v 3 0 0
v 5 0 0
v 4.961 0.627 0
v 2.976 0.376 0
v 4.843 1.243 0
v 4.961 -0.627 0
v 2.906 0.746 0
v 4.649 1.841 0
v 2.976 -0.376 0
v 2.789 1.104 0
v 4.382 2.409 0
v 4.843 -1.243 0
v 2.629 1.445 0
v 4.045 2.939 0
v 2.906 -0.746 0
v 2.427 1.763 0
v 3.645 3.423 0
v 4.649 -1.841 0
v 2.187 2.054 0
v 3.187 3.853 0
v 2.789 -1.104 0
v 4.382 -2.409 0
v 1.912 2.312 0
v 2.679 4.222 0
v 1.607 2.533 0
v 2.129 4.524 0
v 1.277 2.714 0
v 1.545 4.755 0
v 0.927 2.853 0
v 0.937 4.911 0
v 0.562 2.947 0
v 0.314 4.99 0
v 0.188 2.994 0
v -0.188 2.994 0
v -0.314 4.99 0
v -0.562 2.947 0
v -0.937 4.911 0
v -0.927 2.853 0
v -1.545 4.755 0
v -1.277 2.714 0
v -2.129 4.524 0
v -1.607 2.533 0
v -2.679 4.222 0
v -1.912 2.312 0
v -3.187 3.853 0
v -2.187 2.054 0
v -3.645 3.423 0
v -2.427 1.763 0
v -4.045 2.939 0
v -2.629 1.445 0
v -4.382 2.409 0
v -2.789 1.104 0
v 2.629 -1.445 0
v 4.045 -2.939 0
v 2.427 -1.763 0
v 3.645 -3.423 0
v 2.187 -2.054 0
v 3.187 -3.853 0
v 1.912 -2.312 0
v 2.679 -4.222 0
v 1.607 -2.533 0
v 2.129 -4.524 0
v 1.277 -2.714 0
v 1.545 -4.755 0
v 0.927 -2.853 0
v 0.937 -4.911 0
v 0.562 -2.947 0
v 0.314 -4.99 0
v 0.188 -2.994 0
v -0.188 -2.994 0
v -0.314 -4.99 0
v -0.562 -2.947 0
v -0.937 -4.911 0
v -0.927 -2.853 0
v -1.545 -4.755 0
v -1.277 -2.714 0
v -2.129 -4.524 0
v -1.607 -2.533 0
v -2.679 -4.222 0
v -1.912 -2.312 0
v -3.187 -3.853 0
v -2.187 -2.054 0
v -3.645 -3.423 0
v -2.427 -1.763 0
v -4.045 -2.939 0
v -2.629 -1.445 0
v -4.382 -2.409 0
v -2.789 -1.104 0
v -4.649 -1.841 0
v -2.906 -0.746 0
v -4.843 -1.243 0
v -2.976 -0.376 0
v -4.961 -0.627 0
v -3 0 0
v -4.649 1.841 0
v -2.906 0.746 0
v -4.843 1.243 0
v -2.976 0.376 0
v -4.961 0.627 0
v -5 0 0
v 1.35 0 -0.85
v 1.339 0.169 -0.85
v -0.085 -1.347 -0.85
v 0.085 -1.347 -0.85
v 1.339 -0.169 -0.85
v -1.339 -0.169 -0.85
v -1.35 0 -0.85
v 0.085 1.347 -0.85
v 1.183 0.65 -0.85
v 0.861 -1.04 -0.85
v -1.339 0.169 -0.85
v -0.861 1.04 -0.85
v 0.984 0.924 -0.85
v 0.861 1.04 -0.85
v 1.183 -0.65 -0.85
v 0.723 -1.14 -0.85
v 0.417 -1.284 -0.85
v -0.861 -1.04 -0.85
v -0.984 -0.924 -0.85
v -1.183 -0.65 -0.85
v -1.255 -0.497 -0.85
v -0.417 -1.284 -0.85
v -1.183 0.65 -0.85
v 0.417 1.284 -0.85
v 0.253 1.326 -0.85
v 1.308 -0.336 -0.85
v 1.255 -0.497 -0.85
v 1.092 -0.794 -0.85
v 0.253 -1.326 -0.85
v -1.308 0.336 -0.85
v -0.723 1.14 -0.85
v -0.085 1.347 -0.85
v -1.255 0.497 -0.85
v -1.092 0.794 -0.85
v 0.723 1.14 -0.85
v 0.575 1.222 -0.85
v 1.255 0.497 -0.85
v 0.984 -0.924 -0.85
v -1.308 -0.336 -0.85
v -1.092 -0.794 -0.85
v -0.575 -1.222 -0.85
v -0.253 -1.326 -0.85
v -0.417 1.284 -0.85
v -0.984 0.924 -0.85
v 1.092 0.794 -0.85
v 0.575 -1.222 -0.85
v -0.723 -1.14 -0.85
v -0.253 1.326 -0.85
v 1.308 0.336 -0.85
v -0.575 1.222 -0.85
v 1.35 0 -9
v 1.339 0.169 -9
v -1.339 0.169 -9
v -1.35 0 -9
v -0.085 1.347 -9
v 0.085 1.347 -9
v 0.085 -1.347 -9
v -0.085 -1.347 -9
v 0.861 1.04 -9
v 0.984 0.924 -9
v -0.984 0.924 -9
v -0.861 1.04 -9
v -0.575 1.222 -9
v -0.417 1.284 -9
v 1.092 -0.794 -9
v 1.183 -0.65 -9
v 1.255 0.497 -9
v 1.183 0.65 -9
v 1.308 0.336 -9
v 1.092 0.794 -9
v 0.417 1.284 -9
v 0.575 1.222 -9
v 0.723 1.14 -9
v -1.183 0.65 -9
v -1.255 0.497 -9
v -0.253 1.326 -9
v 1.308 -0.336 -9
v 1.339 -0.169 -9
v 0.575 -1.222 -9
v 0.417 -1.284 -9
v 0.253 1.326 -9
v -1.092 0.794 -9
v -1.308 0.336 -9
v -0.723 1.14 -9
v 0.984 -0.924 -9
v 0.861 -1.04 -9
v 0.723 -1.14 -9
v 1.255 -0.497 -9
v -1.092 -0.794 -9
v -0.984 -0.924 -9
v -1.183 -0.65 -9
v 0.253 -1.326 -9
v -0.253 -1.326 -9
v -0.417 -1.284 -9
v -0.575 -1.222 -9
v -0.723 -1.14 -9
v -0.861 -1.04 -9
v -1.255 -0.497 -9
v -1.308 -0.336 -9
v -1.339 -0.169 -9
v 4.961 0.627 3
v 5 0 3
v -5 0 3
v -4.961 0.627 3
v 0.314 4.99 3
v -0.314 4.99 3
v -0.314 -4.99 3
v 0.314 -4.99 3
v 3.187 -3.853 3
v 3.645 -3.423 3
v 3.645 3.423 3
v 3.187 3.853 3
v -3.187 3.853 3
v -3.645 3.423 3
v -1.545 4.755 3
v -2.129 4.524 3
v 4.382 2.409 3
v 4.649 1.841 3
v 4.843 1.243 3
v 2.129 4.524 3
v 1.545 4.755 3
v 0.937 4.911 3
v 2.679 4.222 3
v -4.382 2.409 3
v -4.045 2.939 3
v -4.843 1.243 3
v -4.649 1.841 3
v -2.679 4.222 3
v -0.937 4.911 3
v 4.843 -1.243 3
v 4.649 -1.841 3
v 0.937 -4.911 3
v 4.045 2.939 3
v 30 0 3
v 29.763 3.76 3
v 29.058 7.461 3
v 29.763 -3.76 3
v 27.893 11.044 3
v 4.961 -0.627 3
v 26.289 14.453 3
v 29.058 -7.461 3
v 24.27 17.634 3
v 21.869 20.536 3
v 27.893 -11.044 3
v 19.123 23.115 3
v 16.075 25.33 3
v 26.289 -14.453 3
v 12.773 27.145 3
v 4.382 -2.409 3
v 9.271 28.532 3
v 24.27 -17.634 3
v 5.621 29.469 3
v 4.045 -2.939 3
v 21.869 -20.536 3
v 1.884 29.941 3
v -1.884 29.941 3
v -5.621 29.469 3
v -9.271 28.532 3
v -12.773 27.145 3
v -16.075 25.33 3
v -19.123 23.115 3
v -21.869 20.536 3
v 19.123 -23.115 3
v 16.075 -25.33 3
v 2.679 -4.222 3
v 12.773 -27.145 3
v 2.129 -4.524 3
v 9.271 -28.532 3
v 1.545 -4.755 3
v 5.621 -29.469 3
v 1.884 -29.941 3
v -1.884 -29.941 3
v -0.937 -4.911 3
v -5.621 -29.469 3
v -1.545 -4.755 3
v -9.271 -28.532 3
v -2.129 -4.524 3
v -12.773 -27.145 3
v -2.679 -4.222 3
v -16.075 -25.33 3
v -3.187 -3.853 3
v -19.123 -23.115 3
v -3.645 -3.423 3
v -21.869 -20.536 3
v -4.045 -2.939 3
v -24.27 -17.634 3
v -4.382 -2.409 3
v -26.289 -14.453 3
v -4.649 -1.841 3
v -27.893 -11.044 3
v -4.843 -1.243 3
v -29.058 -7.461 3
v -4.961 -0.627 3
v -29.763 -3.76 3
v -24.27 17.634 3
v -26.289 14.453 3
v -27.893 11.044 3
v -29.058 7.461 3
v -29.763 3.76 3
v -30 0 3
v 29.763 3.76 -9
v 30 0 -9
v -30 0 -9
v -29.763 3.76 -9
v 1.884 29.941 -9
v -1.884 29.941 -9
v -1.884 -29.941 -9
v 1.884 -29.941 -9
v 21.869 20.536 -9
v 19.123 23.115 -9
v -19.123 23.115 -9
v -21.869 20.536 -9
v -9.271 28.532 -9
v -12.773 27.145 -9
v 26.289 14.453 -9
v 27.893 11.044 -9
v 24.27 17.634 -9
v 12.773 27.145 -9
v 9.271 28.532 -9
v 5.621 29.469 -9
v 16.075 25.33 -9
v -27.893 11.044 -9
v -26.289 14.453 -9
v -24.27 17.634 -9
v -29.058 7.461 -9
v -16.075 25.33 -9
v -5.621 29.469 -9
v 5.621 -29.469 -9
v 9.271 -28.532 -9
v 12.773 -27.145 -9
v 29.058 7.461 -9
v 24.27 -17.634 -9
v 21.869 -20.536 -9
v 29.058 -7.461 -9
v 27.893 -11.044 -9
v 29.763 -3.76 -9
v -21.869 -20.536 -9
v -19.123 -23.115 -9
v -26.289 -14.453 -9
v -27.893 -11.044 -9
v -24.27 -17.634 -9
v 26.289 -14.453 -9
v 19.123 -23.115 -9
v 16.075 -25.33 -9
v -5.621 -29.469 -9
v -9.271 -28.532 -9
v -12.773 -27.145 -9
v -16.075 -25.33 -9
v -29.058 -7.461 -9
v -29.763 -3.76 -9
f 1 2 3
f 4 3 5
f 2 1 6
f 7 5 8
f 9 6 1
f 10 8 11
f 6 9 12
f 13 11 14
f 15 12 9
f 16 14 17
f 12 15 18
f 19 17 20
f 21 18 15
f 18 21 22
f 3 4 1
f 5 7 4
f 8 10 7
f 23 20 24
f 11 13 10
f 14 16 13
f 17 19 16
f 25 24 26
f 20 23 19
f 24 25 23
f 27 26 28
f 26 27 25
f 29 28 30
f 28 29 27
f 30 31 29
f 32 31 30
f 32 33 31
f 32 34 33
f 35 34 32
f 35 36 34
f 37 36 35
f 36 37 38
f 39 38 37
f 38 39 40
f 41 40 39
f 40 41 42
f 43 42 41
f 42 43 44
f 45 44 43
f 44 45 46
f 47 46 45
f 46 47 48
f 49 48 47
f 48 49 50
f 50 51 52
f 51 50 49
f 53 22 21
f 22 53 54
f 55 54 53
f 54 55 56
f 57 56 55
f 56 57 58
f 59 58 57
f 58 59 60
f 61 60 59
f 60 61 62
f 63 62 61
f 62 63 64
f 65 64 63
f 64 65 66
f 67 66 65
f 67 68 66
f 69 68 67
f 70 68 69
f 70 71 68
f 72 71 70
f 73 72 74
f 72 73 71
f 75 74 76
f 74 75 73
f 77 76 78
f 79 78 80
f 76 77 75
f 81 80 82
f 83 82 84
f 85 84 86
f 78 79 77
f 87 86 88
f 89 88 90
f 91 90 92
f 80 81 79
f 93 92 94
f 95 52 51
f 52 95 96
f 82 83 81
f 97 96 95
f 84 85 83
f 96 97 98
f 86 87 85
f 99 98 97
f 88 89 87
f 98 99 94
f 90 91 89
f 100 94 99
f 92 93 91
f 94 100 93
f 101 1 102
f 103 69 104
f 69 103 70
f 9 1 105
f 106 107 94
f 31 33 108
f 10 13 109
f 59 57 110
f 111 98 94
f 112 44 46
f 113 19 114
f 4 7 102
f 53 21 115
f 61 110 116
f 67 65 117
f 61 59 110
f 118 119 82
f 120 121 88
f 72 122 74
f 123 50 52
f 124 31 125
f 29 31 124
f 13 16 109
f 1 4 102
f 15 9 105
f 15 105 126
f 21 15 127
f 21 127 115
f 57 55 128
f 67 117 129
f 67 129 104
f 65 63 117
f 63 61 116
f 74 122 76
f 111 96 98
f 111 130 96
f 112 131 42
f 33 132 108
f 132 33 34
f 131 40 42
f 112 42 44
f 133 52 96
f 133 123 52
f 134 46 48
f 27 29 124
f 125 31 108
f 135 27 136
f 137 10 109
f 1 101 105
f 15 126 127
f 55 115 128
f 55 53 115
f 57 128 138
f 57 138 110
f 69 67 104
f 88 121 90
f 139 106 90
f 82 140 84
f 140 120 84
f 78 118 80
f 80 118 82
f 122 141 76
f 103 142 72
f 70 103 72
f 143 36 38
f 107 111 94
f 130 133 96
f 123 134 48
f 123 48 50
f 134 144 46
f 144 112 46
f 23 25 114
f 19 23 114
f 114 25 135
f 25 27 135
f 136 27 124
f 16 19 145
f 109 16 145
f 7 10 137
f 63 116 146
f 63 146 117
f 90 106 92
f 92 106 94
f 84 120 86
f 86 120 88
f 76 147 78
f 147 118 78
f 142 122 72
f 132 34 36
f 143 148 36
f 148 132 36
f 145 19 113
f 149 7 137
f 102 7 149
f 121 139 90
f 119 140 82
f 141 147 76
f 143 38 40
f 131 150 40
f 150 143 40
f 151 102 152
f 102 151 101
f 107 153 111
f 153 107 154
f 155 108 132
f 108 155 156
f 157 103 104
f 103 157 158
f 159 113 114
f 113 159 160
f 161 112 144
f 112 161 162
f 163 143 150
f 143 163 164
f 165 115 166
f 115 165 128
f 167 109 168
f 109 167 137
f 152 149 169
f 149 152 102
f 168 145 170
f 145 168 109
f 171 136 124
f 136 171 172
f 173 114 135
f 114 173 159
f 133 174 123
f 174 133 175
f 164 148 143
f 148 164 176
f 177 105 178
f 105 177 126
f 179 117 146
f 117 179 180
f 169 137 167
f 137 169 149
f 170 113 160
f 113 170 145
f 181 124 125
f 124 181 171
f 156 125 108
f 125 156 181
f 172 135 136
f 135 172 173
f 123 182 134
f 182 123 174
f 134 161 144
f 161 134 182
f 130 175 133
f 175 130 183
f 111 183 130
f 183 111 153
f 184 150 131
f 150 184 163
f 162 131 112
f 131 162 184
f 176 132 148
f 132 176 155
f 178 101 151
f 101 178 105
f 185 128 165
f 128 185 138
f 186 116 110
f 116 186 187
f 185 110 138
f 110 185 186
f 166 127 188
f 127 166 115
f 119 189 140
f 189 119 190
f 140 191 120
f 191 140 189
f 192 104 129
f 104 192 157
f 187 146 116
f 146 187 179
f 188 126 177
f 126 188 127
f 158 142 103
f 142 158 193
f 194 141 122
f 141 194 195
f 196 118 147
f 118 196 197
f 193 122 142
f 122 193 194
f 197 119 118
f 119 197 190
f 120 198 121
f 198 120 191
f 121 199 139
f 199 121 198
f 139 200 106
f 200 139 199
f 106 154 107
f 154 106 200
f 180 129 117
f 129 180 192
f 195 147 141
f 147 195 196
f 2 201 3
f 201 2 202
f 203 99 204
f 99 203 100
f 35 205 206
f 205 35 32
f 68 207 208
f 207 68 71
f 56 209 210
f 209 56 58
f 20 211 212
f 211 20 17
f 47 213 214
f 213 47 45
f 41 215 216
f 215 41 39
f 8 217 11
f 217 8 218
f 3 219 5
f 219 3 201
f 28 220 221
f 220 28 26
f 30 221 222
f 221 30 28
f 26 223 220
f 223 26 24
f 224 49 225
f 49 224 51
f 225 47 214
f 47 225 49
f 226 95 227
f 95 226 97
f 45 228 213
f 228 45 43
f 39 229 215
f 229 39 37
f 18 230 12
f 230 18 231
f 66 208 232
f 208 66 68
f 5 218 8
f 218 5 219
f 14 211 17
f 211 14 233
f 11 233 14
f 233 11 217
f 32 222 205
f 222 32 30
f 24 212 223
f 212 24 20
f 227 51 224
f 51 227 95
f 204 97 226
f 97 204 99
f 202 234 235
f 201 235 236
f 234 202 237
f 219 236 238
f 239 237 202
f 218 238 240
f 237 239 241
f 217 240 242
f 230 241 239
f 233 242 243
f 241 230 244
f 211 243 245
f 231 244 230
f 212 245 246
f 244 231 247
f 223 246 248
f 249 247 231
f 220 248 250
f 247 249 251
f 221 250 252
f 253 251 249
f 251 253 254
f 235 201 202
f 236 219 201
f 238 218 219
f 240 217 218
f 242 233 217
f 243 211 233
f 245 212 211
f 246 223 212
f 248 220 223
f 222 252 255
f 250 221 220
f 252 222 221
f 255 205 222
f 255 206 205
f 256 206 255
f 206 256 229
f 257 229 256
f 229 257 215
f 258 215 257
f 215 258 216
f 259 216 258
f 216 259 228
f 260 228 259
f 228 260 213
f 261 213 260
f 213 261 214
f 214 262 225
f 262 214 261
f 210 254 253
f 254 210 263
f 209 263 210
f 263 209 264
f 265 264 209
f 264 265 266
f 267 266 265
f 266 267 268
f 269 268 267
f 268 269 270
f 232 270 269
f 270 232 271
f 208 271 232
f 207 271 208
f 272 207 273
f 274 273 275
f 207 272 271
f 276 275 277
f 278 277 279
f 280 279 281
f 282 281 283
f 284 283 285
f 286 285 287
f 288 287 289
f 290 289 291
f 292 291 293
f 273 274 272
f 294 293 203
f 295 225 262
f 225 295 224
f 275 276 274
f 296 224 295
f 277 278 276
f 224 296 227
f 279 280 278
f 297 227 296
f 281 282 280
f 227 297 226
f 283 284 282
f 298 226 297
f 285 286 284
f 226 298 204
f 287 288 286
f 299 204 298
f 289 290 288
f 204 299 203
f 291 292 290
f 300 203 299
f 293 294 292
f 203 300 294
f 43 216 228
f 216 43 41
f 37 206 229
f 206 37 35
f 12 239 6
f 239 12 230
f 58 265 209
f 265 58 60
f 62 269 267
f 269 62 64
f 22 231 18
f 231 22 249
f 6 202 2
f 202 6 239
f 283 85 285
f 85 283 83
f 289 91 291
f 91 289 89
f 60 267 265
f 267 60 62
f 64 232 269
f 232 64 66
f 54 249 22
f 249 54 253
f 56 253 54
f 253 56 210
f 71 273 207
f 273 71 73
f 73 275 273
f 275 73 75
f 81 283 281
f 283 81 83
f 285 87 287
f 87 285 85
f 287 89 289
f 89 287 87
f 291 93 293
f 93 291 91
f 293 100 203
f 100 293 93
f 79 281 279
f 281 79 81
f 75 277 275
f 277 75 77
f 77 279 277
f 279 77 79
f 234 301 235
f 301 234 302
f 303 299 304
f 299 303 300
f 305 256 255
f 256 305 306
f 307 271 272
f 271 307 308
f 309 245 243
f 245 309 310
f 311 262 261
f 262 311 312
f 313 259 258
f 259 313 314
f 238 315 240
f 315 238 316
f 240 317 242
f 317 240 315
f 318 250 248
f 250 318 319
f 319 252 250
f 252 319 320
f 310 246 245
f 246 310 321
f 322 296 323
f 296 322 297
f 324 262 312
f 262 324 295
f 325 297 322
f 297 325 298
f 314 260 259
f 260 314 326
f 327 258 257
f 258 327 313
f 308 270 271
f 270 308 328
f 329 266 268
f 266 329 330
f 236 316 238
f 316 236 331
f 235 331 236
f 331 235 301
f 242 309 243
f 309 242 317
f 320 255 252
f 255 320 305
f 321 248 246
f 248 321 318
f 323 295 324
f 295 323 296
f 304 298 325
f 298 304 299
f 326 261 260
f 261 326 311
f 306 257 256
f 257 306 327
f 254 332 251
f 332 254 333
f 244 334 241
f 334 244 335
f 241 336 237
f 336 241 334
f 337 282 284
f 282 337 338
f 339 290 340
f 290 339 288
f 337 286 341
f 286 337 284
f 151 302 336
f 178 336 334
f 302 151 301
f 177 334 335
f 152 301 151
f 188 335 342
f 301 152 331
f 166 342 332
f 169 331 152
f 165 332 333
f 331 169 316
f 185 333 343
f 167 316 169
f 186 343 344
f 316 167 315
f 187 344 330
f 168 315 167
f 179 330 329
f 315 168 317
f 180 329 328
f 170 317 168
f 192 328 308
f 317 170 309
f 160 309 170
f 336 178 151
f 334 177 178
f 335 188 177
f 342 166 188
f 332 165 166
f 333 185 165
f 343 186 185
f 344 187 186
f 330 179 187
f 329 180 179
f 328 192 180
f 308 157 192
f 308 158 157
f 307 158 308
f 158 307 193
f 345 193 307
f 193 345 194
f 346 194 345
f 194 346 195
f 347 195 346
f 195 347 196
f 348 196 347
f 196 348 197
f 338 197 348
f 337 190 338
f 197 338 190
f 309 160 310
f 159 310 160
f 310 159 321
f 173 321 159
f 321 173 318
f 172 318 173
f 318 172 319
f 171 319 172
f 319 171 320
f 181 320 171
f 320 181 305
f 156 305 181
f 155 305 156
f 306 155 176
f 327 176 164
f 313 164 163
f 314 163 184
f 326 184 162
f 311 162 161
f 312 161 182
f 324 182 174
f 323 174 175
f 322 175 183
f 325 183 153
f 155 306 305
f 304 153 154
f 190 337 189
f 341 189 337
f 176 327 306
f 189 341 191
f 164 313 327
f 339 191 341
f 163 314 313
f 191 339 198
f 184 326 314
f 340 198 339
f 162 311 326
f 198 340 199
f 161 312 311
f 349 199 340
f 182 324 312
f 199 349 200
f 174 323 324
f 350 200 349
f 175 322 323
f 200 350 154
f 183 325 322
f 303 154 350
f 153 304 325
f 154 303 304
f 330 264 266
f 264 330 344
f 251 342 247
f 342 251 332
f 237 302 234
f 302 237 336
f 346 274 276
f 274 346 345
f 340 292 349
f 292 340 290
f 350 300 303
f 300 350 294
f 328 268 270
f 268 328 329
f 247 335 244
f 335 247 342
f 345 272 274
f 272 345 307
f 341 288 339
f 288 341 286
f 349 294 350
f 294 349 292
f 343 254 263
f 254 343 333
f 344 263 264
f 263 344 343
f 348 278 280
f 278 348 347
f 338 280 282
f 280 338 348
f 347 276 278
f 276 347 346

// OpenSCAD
$fn = 50;


difference() {
	union() {
		translate(v = [0, 0, -9.0000000000]) {
			cylinder(h = 12, r = 30.0000000000);
		}
	}
	union() {
		translate(v = [0, 0, 0]) {
			rotate(a = [0, 0, 0]) {
				difference() {
					union() {
						translate(v = [0, 0, -12.0000000000]) {
							cylinder(h = 12, r = 1.0000000000);
						}
						translate(v = [0, 0, -0.8500000000]) {
							cylinder(h = 0.8500000000, r1 = 1.3500000000, r2 = 3.0000000000);
						}
						translate(v = [0, 0, -12.0000000000]) {
							cylinder(h = 12, r = 1.3500000000);
						}
						translate(v = [0, 0, -12.0000000000]) {
							cylinder(h = 12, r = 1.0000000000);
						}
					}
					union();
				}
			}
		}
		#cylinder(h = 3, r = 5.0000000000);
	}
}
